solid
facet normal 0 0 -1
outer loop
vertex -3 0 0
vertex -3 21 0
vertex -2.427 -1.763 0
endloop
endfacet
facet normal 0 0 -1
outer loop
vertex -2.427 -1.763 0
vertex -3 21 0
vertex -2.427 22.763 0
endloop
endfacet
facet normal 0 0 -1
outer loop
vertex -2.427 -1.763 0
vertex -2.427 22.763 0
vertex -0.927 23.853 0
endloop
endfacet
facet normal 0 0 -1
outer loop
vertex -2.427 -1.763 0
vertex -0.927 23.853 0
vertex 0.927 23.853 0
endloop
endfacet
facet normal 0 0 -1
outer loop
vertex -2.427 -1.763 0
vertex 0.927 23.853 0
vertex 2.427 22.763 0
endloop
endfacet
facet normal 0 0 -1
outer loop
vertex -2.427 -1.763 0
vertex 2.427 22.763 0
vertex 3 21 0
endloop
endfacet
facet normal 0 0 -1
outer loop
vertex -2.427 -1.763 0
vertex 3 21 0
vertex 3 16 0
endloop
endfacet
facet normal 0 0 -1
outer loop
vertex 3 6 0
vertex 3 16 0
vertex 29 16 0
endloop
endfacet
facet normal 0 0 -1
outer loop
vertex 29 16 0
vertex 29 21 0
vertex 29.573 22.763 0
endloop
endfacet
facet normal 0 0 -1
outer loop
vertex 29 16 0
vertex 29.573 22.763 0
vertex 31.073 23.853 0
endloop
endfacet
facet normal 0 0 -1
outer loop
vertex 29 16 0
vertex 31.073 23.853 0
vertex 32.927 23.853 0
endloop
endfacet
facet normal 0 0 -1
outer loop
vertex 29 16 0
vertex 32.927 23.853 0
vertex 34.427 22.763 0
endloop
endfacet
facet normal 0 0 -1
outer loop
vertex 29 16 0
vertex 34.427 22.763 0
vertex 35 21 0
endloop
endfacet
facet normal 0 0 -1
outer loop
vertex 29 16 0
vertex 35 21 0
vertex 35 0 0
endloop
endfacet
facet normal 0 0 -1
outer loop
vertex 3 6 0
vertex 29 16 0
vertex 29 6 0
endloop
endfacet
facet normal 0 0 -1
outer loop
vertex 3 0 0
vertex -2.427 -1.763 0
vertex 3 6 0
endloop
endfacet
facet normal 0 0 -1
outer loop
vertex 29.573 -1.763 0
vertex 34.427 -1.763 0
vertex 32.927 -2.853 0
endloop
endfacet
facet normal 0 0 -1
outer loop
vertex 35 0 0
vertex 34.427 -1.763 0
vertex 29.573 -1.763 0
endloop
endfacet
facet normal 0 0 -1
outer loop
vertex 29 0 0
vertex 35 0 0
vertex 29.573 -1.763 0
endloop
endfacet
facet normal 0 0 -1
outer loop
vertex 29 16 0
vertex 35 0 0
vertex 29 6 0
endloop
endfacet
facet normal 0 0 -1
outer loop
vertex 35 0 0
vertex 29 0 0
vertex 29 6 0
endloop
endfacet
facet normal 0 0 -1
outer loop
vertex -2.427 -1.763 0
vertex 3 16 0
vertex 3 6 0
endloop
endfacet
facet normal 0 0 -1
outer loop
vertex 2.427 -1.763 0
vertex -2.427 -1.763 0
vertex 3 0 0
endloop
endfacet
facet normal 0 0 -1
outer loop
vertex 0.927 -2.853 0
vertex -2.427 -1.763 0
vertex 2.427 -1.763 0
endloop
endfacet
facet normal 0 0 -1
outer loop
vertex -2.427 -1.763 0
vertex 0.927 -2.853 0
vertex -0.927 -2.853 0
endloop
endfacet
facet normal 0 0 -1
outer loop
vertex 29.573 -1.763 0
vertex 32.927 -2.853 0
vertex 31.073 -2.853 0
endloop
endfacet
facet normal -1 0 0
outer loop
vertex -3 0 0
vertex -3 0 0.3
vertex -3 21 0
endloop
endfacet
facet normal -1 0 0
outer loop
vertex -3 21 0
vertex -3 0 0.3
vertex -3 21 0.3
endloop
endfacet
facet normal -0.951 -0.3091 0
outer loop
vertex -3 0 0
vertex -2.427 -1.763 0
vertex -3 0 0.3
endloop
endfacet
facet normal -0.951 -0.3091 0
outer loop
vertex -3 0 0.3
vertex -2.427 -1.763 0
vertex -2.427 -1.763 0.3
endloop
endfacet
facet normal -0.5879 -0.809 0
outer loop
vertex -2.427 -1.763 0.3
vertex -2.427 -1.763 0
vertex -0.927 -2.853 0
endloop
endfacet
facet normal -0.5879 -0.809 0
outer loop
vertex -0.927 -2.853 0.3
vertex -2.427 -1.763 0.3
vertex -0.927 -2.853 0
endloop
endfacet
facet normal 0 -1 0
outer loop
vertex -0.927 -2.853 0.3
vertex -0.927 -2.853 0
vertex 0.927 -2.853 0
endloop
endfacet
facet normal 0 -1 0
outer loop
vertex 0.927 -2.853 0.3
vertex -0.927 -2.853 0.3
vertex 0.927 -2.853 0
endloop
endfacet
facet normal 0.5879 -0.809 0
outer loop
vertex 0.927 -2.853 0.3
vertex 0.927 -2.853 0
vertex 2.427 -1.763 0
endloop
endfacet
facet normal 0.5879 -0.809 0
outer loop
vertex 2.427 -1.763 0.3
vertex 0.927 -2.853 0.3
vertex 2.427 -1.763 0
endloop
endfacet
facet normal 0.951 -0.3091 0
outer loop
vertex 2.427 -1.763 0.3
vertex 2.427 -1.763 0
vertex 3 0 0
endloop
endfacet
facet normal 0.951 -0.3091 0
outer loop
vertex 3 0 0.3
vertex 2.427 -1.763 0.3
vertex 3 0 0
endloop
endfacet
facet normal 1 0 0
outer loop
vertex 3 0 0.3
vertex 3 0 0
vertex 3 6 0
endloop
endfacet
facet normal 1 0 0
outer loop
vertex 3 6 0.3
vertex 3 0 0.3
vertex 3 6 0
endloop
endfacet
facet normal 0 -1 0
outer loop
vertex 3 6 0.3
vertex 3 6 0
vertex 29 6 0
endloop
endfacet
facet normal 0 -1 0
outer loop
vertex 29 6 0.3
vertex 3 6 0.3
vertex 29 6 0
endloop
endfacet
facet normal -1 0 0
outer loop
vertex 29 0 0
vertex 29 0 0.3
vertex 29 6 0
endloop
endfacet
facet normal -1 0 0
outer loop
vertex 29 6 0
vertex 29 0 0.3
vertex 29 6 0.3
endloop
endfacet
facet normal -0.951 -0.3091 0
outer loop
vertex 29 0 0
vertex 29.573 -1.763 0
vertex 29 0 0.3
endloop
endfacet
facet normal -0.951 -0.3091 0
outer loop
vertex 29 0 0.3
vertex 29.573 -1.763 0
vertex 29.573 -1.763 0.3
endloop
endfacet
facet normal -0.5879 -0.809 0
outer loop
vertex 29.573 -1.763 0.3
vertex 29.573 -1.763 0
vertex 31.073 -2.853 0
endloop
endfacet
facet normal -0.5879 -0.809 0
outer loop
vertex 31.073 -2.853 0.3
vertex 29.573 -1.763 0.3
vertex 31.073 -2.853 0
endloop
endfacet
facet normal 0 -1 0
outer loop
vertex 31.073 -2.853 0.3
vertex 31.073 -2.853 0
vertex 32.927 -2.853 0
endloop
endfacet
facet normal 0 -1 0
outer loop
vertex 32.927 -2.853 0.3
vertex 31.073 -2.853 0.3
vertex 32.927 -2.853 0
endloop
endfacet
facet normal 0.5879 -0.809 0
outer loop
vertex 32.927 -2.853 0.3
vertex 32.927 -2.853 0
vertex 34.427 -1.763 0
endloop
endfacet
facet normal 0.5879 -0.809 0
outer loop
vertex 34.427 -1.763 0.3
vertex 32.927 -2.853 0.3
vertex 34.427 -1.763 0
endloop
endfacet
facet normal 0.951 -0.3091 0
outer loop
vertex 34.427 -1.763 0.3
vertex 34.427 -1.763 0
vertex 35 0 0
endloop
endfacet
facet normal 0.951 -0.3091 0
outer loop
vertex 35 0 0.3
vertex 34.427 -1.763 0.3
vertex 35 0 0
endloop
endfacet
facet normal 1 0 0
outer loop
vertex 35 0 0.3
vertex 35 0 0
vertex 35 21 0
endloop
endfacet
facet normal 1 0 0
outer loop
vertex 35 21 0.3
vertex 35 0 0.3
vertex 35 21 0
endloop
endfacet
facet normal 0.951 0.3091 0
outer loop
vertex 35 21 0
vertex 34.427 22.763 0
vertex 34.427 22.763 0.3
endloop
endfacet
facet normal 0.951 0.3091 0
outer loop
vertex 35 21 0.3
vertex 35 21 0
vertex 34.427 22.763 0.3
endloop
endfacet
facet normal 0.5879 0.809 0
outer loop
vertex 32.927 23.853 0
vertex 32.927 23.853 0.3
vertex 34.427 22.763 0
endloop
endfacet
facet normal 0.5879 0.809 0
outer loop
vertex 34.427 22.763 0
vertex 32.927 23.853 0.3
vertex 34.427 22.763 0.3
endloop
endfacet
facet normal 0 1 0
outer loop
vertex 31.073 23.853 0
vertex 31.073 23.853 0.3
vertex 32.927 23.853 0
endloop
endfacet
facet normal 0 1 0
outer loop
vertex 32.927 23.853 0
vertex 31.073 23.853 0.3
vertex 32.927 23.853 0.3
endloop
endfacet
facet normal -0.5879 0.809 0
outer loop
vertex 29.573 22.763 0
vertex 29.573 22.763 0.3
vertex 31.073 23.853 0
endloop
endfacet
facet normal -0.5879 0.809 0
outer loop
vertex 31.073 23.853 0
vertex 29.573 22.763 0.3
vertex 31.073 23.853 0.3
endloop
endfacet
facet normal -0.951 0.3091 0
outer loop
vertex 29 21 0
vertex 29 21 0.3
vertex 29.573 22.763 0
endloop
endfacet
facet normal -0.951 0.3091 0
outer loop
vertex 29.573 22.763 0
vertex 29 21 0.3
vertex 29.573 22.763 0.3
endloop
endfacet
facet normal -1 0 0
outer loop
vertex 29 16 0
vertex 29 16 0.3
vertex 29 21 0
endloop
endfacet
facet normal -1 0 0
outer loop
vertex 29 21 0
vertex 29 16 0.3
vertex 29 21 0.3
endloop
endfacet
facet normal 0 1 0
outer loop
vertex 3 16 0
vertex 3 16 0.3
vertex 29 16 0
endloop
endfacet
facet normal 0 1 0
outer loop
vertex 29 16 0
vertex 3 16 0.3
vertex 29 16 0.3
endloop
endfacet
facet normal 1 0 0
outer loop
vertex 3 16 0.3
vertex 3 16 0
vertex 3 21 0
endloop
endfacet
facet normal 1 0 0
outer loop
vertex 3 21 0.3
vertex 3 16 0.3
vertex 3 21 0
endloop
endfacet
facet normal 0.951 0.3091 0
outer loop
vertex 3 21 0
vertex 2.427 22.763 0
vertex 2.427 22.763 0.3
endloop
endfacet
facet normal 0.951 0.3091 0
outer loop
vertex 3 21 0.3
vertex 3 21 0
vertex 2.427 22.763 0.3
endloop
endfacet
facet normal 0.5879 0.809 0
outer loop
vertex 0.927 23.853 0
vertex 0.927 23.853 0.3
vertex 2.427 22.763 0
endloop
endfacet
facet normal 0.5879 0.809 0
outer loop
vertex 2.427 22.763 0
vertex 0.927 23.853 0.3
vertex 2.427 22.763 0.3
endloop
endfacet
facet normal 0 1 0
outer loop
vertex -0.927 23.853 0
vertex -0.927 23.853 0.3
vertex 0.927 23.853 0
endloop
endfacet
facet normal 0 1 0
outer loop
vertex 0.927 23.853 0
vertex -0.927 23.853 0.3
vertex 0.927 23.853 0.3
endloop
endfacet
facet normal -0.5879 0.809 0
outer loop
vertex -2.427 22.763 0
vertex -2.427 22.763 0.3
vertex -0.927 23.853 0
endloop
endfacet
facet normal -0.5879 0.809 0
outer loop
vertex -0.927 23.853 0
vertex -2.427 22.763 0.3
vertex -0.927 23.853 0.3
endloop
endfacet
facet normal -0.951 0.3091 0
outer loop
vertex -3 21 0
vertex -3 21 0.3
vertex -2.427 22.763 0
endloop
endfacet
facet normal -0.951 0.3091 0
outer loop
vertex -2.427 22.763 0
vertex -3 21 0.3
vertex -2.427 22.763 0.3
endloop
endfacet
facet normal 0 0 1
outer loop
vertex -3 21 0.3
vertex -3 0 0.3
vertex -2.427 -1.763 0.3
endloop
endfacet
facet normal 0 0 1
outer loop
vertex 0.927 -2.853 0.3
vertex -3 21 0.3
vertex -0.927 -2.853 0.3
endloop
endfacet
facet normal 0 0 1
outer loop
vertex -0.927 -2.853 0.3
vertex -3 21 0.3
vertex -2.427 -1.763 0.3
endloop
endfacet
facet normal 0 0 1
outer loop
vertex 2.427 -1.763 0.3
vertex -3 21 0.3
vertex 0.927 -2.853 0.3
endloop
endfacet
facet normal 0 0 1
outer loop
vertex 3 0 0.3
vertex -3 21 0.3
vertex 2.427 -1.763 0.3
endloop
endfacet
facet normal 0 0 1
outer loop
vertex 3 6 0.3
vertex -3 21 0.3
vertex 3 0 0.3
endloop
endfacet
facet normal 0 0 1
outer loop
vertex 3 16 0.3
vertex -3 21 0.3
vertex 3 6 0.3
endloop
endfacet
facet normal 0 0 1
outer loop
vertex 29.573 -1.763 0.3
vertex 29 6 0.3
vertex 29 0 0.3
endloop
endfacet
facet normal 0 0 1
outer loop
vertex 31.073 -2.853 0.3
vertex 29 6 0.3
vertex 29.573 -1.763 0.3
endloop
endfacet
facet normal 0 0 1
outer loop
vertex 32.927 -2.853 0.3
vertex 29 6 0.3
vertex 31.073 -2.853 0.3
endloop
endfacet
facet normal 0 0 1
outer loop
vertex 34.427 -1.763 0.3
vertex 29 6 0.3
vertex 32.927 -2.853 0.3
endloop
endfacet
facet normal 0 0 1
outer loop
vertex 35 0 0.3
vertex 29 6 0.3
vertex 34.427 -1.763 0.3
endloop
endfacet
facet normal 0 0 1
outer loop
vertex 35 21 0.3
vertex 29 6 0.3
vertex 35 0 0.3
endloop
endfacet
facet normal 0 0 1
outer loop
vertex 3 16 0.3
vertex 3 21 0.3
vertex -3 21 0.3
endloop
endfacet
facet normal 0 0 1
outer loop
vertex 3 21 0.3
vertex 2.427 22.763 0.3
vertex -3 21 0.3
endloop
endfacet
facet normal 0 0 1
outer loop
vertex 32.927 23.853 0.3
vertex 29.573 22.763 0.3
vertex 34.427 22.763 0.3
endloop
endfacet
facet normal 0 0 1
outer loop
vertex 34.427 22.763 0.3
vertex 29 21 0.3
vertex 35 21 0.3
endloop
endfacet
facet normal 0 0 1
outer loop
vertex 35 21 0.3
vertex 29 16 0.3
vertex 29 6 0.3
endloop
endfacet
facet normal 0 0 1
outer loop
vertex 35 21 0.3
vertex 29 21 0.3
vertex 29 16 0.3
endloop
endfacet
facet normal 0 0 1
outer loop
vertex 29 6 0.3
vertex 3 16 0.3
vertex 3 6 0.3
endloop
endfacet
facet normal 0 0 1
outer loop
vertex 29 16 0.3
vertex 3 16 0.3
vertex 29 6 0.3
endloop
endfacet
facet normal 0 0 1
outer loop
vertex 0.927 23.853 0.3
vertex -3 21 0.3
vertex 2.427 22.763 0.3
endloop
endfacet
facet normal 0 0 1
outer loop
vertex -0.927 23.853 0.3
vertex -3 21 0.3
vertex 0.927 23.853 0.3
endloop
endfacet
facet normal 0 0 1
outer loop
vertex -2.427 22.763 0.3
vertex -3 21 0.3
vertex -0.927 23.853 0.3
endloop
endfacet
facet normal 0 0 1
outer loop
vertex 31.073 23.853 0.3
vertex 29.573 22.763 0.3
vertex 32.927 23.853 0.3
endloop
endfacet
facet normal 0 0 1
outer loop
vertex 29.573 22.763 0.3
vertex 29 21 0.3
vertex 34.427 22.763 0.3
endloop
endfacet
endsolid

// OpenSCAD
hull() {
	cylinder(r=3,h=0.3);
	translate([0,21,0]) cylinder(r=3,h=0.3);
}
translate([32,0,0]) hull() {
	cylinder(r=3,h=0.3);
	translate([0,21,0]) cylinder(r=3,h=0.3);
}

translate([0,6,0]) cube([34,10,0.3]);
